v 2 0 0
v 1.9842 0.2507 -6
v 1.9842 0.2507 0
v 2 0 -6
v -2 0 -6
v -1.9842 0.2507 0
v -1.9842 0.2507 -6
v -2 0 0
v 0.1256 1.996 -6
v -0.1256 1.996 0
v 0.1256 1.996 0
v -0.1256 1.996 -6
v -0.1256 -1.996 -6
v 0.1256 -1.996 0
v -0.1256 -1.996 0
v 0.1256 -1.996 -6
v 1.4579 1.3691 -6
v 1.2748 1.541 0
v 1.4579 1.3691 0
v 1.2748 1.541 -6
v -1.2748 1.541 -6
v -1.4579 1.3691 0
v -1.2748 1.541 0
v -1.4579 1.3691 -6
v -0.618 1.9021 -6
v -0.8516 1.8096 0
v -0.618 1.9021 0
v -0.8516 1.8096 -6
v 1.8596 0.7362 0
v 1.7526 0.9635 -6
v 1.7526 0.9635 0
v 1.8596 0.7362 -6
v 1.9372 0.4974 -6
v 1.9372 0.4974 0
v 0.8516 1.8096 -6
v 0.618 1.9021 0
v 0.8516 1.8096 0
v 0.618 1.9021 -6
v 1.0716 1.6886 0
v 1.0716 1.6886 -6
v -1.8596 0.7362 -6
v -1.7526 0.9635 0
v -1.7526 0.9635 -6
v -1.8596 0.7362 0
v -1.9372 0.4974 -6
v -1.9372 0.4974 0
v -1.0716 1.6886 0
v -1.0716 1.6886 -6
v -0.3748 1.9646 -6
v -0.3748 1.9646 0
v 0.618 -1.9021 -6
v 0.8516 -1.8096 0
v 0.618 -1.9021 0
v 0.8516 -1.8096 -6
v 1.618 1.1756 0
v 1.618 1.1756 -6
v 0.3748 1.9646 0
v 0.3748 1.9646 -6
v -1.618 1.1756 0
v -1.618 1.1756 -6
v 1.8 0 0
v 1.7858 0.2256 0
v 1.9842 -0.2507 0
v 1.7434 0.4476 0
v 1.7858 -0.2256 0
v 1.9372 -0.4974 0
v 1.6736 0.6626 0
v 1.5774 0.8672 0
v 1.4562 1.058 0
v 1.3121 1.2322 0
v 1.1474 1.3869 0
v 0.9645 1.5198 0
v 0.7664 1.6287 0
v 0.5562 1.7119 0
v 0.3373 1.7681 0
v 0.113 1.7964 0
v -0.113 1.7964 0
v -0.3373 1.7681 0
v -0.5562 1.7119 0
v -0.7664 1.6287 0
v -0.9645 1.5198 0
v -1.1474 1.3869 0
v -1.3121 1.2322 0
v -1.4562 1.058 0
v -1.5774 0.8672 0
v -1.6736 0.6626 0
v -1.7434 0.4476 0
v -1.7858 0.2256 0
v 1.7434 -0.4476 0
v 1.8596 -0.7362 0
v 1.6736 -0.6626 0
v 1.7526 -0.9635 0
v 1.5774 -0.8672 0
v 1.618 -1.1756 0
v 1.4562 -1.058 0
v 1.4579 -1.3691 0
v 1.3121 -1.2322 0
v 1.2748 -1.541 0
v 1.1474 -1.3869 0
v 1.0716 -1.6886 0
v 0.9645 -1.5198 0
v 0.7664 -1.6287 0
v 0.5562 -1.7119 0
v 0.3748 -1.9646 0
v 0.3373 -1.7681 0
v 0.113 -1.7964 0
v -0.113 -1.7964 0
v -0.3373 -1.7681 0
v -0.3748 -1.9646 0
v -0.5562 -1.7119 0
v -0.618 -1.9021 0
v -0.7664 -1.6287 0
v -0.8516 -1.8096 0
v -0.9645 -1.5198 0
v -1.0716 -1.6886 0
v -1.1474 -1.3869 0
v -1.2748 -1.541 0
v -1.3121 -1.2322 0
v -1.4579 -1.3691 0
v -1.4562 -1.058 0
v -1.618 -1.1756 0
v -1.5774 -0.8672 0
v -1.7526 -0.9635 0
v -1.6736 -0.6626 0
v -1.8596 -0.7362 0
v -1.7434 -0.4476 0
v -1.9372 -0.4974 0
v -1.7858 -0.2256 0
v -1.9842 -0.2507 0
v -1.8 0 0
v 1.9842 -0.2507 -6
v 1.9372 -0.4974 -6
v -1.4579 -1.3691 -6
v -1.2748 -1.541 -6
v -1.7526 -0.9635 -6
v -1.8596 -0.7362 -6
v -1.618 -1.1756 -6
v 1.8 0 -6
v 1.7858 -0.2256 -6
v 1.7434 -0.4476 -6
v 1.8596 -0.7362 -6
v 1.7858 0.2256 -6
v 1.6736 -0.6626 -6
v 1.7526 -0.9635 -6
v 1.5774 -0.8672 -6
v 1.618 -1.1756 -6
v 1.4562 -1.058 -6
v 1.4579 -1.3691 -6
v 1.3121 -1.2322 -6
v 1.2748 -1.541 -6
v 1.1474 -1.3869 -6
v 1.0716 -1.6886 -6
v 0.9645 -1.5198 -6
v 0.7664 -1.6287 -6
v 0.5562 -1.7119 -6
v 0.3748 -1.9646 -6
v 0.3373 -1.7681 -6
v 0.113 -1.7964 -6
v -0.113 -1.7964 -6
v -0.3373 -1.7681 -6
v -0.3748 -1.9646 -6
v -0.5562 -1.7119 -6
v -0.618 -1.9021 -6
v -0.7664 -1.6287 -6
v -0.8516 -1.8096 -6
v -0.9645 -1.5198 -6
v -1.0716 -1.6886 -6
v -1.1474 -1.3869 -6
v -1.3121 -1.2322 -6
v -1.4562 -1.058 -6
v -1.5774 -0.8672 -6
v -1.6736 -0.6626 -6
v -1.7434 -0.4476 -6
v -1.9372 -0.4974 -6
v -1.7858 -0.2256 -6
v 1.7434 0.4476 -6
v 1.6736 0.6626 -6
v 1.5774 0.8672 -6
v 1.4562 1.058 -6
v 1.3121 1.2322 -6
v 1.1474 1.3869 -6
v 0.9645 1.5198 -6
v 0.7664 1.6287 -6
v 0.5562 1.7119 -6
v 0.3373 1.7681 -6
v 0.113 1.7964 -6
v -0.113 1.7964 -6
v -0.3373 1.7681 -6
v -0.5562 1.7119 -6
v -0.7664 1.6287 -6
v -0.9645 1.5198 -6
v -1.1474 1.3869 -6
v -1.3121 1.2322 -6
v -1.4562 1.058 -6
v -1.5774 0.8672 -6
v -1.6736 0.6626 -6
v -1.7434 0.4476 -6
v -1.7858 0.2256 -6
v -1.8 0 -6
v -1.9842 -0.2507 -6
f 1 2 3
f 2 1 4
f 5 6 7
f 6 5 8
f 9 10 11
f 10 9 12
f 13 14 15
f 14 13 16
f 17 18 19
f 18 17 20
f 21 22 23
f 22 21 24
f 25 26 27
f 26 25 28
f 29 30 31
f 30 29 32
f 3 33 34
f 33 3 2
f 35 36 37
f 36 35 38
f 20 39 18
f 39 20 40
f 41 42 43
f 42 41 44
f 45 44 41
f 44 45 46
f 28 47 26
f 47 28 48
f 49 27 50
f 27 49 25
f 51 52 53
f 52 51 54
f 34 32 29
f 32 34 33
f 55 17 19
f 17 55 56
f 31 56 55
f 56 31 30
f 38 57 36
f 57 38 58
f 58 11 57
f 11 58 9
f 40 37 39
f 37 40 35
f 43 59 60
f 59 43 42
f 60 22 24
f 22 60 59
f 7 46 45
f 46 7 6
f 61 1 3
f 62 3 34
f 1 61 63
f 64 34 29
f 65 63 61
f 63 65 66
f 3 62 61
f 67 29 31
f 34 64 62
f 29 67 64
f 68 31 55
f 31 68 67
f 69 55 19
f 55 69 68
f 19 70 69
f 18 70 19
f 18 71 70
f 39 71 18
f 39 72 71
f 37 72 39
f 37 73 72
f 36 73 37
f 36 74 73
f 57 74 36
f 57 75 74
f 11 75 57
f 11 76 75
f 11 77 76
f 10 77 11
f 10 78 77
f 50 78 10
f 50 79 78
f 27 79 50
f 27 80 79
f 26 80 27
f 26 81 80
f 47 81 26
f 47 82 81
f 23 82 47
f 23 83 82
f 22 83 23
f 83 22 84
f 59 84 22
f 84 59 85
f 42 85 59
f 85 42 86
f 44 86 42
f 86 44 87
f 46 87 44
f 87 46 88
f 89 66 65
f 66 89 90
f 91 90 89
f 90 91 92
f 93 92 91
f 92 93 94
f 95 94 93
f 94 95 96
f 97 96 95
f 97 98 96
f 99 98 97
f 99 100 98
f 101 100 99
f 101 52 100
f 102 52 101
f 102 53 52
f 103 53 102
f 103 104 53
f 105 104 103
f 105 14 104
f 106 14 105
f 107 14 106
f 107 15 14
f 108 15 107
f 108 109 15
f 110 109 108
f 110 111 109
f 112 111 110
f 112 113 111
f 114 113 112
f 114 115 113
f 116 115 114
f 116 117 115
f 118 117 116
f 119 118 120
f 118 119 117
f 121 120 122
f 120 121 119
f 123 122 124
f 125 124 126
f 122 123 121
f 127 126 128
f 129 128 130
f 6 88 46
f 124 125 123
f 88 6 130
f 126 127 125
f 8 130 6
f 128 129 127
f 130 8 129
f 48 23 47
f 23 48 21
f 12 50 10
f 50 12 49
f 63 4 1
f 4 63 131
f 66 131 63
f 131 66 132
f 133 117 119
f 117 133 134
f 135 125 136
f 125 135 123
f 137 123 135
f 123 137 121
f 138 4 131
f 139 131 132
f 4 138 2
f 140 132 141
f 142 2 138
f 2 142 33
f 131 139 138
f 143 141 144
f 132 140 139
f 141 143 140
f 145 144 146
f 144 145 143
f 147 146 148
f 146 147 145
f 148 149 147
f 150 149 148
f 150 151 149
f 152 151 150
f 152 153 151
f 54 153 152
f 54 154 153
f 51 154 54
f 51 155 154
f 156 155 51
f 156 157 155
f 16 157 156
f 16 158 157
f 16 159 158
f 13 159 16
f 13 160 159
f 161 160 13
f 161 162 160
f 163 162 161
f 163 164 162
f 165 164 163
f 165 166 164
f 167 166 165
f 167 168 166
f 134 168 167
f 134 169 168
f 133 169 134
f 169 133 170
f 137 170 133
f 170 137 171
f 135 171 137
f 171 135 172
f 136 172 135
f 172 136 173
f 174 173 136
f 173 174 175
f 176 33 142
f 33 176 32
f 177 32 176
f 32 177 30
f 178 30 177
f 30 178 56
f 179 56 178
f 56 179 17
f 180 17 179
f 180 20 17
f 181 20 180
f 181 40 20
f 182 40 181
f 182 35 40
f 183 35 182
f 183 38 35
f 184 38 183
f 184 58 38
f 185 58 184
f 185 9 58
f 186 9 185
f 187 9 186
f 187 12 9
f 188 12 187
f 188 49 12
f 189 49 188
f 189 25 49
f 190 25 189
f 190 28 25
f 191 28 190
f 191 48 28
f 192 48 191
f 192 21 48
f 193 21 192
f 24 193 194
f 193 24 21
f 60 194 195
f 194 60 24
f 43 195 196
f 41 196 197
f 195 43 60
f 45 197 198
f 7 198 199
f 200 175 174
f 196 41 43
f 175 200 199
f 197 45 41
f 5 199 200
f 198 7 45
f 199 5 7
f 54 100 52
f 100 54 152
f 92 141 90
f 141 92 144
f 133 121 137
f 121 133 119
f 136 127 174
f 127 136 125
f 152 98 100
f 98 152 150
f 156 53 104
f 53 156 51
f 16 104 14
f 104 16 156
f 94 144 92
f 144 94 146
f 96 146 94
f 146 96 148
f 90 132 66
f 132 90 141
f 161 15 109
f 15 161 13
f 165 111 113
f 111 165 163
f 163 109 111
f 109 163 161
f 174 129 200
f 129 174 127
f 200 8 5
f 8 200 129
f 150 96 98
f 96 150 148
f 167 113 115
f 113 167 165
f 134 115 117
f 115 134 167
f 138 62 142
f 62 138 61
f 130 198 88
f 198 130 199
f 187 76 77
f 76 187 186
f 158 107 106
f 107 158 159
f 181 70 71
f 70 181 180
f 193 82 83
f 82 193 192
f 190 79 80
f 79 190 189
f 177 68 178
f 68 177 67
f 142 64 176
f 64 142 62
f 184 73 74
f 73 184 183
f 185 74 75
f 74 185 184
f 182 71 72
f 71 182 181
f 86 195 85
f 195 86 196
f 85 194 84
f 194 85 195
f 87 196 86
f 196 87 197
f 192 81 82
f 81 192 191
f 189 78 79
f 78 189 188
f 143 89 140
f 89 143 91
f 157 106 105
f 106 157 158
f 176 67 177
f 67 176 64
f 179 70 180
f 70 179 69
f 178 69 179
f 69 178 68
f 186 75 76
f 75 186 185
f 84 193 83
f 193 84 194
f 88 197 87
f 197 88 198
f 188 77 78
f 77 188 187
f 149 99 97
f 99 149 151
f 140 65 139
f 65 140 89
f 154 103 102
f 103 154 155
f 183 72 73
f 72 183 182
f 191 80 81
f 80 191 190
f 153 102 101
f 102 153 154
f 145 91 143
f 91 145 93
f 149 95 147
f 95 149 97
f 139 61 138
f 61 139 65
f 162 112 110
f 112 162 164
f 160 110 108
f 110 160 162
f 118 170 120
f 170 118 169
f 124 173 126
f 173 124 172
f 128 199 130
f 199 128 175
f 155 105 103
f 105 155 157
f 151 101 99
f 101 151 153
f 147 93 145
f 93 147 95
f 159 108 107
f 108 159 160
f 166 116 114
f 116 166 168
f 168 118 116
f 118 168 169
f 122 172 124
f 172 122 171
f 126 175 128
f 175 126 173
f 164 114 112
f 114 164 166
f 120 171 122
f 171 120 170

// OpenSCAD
$fn = 50;


difference() {
	union() {
		translate(v = [0, 0, -6.0000000000]) {
			rotate(a = [0, 0, 0]) {
				cylinder(h = 6, r = 2.0000000000);
			}
		}
		translate(v = [0, 0, -6.0000000000]) {
			rotate(a = [0, 0, 0]) {
				cylinder(h = 6, r = 2.0000000000);
			}
		}
		translate(v = [0, 0, -6.0000000000]) {
			rotate(a = [0, 0, 0]) {
				cylinder(h = 6, r = 2.0000000000);
			}
		}
	}
	union() {
		translate(v = [0, 0, -10]) {
			rotate(a = [0, 0, 0]) {
				cylinder(h = 100, r = 1.8000000000);
			}
		}
	}
}
